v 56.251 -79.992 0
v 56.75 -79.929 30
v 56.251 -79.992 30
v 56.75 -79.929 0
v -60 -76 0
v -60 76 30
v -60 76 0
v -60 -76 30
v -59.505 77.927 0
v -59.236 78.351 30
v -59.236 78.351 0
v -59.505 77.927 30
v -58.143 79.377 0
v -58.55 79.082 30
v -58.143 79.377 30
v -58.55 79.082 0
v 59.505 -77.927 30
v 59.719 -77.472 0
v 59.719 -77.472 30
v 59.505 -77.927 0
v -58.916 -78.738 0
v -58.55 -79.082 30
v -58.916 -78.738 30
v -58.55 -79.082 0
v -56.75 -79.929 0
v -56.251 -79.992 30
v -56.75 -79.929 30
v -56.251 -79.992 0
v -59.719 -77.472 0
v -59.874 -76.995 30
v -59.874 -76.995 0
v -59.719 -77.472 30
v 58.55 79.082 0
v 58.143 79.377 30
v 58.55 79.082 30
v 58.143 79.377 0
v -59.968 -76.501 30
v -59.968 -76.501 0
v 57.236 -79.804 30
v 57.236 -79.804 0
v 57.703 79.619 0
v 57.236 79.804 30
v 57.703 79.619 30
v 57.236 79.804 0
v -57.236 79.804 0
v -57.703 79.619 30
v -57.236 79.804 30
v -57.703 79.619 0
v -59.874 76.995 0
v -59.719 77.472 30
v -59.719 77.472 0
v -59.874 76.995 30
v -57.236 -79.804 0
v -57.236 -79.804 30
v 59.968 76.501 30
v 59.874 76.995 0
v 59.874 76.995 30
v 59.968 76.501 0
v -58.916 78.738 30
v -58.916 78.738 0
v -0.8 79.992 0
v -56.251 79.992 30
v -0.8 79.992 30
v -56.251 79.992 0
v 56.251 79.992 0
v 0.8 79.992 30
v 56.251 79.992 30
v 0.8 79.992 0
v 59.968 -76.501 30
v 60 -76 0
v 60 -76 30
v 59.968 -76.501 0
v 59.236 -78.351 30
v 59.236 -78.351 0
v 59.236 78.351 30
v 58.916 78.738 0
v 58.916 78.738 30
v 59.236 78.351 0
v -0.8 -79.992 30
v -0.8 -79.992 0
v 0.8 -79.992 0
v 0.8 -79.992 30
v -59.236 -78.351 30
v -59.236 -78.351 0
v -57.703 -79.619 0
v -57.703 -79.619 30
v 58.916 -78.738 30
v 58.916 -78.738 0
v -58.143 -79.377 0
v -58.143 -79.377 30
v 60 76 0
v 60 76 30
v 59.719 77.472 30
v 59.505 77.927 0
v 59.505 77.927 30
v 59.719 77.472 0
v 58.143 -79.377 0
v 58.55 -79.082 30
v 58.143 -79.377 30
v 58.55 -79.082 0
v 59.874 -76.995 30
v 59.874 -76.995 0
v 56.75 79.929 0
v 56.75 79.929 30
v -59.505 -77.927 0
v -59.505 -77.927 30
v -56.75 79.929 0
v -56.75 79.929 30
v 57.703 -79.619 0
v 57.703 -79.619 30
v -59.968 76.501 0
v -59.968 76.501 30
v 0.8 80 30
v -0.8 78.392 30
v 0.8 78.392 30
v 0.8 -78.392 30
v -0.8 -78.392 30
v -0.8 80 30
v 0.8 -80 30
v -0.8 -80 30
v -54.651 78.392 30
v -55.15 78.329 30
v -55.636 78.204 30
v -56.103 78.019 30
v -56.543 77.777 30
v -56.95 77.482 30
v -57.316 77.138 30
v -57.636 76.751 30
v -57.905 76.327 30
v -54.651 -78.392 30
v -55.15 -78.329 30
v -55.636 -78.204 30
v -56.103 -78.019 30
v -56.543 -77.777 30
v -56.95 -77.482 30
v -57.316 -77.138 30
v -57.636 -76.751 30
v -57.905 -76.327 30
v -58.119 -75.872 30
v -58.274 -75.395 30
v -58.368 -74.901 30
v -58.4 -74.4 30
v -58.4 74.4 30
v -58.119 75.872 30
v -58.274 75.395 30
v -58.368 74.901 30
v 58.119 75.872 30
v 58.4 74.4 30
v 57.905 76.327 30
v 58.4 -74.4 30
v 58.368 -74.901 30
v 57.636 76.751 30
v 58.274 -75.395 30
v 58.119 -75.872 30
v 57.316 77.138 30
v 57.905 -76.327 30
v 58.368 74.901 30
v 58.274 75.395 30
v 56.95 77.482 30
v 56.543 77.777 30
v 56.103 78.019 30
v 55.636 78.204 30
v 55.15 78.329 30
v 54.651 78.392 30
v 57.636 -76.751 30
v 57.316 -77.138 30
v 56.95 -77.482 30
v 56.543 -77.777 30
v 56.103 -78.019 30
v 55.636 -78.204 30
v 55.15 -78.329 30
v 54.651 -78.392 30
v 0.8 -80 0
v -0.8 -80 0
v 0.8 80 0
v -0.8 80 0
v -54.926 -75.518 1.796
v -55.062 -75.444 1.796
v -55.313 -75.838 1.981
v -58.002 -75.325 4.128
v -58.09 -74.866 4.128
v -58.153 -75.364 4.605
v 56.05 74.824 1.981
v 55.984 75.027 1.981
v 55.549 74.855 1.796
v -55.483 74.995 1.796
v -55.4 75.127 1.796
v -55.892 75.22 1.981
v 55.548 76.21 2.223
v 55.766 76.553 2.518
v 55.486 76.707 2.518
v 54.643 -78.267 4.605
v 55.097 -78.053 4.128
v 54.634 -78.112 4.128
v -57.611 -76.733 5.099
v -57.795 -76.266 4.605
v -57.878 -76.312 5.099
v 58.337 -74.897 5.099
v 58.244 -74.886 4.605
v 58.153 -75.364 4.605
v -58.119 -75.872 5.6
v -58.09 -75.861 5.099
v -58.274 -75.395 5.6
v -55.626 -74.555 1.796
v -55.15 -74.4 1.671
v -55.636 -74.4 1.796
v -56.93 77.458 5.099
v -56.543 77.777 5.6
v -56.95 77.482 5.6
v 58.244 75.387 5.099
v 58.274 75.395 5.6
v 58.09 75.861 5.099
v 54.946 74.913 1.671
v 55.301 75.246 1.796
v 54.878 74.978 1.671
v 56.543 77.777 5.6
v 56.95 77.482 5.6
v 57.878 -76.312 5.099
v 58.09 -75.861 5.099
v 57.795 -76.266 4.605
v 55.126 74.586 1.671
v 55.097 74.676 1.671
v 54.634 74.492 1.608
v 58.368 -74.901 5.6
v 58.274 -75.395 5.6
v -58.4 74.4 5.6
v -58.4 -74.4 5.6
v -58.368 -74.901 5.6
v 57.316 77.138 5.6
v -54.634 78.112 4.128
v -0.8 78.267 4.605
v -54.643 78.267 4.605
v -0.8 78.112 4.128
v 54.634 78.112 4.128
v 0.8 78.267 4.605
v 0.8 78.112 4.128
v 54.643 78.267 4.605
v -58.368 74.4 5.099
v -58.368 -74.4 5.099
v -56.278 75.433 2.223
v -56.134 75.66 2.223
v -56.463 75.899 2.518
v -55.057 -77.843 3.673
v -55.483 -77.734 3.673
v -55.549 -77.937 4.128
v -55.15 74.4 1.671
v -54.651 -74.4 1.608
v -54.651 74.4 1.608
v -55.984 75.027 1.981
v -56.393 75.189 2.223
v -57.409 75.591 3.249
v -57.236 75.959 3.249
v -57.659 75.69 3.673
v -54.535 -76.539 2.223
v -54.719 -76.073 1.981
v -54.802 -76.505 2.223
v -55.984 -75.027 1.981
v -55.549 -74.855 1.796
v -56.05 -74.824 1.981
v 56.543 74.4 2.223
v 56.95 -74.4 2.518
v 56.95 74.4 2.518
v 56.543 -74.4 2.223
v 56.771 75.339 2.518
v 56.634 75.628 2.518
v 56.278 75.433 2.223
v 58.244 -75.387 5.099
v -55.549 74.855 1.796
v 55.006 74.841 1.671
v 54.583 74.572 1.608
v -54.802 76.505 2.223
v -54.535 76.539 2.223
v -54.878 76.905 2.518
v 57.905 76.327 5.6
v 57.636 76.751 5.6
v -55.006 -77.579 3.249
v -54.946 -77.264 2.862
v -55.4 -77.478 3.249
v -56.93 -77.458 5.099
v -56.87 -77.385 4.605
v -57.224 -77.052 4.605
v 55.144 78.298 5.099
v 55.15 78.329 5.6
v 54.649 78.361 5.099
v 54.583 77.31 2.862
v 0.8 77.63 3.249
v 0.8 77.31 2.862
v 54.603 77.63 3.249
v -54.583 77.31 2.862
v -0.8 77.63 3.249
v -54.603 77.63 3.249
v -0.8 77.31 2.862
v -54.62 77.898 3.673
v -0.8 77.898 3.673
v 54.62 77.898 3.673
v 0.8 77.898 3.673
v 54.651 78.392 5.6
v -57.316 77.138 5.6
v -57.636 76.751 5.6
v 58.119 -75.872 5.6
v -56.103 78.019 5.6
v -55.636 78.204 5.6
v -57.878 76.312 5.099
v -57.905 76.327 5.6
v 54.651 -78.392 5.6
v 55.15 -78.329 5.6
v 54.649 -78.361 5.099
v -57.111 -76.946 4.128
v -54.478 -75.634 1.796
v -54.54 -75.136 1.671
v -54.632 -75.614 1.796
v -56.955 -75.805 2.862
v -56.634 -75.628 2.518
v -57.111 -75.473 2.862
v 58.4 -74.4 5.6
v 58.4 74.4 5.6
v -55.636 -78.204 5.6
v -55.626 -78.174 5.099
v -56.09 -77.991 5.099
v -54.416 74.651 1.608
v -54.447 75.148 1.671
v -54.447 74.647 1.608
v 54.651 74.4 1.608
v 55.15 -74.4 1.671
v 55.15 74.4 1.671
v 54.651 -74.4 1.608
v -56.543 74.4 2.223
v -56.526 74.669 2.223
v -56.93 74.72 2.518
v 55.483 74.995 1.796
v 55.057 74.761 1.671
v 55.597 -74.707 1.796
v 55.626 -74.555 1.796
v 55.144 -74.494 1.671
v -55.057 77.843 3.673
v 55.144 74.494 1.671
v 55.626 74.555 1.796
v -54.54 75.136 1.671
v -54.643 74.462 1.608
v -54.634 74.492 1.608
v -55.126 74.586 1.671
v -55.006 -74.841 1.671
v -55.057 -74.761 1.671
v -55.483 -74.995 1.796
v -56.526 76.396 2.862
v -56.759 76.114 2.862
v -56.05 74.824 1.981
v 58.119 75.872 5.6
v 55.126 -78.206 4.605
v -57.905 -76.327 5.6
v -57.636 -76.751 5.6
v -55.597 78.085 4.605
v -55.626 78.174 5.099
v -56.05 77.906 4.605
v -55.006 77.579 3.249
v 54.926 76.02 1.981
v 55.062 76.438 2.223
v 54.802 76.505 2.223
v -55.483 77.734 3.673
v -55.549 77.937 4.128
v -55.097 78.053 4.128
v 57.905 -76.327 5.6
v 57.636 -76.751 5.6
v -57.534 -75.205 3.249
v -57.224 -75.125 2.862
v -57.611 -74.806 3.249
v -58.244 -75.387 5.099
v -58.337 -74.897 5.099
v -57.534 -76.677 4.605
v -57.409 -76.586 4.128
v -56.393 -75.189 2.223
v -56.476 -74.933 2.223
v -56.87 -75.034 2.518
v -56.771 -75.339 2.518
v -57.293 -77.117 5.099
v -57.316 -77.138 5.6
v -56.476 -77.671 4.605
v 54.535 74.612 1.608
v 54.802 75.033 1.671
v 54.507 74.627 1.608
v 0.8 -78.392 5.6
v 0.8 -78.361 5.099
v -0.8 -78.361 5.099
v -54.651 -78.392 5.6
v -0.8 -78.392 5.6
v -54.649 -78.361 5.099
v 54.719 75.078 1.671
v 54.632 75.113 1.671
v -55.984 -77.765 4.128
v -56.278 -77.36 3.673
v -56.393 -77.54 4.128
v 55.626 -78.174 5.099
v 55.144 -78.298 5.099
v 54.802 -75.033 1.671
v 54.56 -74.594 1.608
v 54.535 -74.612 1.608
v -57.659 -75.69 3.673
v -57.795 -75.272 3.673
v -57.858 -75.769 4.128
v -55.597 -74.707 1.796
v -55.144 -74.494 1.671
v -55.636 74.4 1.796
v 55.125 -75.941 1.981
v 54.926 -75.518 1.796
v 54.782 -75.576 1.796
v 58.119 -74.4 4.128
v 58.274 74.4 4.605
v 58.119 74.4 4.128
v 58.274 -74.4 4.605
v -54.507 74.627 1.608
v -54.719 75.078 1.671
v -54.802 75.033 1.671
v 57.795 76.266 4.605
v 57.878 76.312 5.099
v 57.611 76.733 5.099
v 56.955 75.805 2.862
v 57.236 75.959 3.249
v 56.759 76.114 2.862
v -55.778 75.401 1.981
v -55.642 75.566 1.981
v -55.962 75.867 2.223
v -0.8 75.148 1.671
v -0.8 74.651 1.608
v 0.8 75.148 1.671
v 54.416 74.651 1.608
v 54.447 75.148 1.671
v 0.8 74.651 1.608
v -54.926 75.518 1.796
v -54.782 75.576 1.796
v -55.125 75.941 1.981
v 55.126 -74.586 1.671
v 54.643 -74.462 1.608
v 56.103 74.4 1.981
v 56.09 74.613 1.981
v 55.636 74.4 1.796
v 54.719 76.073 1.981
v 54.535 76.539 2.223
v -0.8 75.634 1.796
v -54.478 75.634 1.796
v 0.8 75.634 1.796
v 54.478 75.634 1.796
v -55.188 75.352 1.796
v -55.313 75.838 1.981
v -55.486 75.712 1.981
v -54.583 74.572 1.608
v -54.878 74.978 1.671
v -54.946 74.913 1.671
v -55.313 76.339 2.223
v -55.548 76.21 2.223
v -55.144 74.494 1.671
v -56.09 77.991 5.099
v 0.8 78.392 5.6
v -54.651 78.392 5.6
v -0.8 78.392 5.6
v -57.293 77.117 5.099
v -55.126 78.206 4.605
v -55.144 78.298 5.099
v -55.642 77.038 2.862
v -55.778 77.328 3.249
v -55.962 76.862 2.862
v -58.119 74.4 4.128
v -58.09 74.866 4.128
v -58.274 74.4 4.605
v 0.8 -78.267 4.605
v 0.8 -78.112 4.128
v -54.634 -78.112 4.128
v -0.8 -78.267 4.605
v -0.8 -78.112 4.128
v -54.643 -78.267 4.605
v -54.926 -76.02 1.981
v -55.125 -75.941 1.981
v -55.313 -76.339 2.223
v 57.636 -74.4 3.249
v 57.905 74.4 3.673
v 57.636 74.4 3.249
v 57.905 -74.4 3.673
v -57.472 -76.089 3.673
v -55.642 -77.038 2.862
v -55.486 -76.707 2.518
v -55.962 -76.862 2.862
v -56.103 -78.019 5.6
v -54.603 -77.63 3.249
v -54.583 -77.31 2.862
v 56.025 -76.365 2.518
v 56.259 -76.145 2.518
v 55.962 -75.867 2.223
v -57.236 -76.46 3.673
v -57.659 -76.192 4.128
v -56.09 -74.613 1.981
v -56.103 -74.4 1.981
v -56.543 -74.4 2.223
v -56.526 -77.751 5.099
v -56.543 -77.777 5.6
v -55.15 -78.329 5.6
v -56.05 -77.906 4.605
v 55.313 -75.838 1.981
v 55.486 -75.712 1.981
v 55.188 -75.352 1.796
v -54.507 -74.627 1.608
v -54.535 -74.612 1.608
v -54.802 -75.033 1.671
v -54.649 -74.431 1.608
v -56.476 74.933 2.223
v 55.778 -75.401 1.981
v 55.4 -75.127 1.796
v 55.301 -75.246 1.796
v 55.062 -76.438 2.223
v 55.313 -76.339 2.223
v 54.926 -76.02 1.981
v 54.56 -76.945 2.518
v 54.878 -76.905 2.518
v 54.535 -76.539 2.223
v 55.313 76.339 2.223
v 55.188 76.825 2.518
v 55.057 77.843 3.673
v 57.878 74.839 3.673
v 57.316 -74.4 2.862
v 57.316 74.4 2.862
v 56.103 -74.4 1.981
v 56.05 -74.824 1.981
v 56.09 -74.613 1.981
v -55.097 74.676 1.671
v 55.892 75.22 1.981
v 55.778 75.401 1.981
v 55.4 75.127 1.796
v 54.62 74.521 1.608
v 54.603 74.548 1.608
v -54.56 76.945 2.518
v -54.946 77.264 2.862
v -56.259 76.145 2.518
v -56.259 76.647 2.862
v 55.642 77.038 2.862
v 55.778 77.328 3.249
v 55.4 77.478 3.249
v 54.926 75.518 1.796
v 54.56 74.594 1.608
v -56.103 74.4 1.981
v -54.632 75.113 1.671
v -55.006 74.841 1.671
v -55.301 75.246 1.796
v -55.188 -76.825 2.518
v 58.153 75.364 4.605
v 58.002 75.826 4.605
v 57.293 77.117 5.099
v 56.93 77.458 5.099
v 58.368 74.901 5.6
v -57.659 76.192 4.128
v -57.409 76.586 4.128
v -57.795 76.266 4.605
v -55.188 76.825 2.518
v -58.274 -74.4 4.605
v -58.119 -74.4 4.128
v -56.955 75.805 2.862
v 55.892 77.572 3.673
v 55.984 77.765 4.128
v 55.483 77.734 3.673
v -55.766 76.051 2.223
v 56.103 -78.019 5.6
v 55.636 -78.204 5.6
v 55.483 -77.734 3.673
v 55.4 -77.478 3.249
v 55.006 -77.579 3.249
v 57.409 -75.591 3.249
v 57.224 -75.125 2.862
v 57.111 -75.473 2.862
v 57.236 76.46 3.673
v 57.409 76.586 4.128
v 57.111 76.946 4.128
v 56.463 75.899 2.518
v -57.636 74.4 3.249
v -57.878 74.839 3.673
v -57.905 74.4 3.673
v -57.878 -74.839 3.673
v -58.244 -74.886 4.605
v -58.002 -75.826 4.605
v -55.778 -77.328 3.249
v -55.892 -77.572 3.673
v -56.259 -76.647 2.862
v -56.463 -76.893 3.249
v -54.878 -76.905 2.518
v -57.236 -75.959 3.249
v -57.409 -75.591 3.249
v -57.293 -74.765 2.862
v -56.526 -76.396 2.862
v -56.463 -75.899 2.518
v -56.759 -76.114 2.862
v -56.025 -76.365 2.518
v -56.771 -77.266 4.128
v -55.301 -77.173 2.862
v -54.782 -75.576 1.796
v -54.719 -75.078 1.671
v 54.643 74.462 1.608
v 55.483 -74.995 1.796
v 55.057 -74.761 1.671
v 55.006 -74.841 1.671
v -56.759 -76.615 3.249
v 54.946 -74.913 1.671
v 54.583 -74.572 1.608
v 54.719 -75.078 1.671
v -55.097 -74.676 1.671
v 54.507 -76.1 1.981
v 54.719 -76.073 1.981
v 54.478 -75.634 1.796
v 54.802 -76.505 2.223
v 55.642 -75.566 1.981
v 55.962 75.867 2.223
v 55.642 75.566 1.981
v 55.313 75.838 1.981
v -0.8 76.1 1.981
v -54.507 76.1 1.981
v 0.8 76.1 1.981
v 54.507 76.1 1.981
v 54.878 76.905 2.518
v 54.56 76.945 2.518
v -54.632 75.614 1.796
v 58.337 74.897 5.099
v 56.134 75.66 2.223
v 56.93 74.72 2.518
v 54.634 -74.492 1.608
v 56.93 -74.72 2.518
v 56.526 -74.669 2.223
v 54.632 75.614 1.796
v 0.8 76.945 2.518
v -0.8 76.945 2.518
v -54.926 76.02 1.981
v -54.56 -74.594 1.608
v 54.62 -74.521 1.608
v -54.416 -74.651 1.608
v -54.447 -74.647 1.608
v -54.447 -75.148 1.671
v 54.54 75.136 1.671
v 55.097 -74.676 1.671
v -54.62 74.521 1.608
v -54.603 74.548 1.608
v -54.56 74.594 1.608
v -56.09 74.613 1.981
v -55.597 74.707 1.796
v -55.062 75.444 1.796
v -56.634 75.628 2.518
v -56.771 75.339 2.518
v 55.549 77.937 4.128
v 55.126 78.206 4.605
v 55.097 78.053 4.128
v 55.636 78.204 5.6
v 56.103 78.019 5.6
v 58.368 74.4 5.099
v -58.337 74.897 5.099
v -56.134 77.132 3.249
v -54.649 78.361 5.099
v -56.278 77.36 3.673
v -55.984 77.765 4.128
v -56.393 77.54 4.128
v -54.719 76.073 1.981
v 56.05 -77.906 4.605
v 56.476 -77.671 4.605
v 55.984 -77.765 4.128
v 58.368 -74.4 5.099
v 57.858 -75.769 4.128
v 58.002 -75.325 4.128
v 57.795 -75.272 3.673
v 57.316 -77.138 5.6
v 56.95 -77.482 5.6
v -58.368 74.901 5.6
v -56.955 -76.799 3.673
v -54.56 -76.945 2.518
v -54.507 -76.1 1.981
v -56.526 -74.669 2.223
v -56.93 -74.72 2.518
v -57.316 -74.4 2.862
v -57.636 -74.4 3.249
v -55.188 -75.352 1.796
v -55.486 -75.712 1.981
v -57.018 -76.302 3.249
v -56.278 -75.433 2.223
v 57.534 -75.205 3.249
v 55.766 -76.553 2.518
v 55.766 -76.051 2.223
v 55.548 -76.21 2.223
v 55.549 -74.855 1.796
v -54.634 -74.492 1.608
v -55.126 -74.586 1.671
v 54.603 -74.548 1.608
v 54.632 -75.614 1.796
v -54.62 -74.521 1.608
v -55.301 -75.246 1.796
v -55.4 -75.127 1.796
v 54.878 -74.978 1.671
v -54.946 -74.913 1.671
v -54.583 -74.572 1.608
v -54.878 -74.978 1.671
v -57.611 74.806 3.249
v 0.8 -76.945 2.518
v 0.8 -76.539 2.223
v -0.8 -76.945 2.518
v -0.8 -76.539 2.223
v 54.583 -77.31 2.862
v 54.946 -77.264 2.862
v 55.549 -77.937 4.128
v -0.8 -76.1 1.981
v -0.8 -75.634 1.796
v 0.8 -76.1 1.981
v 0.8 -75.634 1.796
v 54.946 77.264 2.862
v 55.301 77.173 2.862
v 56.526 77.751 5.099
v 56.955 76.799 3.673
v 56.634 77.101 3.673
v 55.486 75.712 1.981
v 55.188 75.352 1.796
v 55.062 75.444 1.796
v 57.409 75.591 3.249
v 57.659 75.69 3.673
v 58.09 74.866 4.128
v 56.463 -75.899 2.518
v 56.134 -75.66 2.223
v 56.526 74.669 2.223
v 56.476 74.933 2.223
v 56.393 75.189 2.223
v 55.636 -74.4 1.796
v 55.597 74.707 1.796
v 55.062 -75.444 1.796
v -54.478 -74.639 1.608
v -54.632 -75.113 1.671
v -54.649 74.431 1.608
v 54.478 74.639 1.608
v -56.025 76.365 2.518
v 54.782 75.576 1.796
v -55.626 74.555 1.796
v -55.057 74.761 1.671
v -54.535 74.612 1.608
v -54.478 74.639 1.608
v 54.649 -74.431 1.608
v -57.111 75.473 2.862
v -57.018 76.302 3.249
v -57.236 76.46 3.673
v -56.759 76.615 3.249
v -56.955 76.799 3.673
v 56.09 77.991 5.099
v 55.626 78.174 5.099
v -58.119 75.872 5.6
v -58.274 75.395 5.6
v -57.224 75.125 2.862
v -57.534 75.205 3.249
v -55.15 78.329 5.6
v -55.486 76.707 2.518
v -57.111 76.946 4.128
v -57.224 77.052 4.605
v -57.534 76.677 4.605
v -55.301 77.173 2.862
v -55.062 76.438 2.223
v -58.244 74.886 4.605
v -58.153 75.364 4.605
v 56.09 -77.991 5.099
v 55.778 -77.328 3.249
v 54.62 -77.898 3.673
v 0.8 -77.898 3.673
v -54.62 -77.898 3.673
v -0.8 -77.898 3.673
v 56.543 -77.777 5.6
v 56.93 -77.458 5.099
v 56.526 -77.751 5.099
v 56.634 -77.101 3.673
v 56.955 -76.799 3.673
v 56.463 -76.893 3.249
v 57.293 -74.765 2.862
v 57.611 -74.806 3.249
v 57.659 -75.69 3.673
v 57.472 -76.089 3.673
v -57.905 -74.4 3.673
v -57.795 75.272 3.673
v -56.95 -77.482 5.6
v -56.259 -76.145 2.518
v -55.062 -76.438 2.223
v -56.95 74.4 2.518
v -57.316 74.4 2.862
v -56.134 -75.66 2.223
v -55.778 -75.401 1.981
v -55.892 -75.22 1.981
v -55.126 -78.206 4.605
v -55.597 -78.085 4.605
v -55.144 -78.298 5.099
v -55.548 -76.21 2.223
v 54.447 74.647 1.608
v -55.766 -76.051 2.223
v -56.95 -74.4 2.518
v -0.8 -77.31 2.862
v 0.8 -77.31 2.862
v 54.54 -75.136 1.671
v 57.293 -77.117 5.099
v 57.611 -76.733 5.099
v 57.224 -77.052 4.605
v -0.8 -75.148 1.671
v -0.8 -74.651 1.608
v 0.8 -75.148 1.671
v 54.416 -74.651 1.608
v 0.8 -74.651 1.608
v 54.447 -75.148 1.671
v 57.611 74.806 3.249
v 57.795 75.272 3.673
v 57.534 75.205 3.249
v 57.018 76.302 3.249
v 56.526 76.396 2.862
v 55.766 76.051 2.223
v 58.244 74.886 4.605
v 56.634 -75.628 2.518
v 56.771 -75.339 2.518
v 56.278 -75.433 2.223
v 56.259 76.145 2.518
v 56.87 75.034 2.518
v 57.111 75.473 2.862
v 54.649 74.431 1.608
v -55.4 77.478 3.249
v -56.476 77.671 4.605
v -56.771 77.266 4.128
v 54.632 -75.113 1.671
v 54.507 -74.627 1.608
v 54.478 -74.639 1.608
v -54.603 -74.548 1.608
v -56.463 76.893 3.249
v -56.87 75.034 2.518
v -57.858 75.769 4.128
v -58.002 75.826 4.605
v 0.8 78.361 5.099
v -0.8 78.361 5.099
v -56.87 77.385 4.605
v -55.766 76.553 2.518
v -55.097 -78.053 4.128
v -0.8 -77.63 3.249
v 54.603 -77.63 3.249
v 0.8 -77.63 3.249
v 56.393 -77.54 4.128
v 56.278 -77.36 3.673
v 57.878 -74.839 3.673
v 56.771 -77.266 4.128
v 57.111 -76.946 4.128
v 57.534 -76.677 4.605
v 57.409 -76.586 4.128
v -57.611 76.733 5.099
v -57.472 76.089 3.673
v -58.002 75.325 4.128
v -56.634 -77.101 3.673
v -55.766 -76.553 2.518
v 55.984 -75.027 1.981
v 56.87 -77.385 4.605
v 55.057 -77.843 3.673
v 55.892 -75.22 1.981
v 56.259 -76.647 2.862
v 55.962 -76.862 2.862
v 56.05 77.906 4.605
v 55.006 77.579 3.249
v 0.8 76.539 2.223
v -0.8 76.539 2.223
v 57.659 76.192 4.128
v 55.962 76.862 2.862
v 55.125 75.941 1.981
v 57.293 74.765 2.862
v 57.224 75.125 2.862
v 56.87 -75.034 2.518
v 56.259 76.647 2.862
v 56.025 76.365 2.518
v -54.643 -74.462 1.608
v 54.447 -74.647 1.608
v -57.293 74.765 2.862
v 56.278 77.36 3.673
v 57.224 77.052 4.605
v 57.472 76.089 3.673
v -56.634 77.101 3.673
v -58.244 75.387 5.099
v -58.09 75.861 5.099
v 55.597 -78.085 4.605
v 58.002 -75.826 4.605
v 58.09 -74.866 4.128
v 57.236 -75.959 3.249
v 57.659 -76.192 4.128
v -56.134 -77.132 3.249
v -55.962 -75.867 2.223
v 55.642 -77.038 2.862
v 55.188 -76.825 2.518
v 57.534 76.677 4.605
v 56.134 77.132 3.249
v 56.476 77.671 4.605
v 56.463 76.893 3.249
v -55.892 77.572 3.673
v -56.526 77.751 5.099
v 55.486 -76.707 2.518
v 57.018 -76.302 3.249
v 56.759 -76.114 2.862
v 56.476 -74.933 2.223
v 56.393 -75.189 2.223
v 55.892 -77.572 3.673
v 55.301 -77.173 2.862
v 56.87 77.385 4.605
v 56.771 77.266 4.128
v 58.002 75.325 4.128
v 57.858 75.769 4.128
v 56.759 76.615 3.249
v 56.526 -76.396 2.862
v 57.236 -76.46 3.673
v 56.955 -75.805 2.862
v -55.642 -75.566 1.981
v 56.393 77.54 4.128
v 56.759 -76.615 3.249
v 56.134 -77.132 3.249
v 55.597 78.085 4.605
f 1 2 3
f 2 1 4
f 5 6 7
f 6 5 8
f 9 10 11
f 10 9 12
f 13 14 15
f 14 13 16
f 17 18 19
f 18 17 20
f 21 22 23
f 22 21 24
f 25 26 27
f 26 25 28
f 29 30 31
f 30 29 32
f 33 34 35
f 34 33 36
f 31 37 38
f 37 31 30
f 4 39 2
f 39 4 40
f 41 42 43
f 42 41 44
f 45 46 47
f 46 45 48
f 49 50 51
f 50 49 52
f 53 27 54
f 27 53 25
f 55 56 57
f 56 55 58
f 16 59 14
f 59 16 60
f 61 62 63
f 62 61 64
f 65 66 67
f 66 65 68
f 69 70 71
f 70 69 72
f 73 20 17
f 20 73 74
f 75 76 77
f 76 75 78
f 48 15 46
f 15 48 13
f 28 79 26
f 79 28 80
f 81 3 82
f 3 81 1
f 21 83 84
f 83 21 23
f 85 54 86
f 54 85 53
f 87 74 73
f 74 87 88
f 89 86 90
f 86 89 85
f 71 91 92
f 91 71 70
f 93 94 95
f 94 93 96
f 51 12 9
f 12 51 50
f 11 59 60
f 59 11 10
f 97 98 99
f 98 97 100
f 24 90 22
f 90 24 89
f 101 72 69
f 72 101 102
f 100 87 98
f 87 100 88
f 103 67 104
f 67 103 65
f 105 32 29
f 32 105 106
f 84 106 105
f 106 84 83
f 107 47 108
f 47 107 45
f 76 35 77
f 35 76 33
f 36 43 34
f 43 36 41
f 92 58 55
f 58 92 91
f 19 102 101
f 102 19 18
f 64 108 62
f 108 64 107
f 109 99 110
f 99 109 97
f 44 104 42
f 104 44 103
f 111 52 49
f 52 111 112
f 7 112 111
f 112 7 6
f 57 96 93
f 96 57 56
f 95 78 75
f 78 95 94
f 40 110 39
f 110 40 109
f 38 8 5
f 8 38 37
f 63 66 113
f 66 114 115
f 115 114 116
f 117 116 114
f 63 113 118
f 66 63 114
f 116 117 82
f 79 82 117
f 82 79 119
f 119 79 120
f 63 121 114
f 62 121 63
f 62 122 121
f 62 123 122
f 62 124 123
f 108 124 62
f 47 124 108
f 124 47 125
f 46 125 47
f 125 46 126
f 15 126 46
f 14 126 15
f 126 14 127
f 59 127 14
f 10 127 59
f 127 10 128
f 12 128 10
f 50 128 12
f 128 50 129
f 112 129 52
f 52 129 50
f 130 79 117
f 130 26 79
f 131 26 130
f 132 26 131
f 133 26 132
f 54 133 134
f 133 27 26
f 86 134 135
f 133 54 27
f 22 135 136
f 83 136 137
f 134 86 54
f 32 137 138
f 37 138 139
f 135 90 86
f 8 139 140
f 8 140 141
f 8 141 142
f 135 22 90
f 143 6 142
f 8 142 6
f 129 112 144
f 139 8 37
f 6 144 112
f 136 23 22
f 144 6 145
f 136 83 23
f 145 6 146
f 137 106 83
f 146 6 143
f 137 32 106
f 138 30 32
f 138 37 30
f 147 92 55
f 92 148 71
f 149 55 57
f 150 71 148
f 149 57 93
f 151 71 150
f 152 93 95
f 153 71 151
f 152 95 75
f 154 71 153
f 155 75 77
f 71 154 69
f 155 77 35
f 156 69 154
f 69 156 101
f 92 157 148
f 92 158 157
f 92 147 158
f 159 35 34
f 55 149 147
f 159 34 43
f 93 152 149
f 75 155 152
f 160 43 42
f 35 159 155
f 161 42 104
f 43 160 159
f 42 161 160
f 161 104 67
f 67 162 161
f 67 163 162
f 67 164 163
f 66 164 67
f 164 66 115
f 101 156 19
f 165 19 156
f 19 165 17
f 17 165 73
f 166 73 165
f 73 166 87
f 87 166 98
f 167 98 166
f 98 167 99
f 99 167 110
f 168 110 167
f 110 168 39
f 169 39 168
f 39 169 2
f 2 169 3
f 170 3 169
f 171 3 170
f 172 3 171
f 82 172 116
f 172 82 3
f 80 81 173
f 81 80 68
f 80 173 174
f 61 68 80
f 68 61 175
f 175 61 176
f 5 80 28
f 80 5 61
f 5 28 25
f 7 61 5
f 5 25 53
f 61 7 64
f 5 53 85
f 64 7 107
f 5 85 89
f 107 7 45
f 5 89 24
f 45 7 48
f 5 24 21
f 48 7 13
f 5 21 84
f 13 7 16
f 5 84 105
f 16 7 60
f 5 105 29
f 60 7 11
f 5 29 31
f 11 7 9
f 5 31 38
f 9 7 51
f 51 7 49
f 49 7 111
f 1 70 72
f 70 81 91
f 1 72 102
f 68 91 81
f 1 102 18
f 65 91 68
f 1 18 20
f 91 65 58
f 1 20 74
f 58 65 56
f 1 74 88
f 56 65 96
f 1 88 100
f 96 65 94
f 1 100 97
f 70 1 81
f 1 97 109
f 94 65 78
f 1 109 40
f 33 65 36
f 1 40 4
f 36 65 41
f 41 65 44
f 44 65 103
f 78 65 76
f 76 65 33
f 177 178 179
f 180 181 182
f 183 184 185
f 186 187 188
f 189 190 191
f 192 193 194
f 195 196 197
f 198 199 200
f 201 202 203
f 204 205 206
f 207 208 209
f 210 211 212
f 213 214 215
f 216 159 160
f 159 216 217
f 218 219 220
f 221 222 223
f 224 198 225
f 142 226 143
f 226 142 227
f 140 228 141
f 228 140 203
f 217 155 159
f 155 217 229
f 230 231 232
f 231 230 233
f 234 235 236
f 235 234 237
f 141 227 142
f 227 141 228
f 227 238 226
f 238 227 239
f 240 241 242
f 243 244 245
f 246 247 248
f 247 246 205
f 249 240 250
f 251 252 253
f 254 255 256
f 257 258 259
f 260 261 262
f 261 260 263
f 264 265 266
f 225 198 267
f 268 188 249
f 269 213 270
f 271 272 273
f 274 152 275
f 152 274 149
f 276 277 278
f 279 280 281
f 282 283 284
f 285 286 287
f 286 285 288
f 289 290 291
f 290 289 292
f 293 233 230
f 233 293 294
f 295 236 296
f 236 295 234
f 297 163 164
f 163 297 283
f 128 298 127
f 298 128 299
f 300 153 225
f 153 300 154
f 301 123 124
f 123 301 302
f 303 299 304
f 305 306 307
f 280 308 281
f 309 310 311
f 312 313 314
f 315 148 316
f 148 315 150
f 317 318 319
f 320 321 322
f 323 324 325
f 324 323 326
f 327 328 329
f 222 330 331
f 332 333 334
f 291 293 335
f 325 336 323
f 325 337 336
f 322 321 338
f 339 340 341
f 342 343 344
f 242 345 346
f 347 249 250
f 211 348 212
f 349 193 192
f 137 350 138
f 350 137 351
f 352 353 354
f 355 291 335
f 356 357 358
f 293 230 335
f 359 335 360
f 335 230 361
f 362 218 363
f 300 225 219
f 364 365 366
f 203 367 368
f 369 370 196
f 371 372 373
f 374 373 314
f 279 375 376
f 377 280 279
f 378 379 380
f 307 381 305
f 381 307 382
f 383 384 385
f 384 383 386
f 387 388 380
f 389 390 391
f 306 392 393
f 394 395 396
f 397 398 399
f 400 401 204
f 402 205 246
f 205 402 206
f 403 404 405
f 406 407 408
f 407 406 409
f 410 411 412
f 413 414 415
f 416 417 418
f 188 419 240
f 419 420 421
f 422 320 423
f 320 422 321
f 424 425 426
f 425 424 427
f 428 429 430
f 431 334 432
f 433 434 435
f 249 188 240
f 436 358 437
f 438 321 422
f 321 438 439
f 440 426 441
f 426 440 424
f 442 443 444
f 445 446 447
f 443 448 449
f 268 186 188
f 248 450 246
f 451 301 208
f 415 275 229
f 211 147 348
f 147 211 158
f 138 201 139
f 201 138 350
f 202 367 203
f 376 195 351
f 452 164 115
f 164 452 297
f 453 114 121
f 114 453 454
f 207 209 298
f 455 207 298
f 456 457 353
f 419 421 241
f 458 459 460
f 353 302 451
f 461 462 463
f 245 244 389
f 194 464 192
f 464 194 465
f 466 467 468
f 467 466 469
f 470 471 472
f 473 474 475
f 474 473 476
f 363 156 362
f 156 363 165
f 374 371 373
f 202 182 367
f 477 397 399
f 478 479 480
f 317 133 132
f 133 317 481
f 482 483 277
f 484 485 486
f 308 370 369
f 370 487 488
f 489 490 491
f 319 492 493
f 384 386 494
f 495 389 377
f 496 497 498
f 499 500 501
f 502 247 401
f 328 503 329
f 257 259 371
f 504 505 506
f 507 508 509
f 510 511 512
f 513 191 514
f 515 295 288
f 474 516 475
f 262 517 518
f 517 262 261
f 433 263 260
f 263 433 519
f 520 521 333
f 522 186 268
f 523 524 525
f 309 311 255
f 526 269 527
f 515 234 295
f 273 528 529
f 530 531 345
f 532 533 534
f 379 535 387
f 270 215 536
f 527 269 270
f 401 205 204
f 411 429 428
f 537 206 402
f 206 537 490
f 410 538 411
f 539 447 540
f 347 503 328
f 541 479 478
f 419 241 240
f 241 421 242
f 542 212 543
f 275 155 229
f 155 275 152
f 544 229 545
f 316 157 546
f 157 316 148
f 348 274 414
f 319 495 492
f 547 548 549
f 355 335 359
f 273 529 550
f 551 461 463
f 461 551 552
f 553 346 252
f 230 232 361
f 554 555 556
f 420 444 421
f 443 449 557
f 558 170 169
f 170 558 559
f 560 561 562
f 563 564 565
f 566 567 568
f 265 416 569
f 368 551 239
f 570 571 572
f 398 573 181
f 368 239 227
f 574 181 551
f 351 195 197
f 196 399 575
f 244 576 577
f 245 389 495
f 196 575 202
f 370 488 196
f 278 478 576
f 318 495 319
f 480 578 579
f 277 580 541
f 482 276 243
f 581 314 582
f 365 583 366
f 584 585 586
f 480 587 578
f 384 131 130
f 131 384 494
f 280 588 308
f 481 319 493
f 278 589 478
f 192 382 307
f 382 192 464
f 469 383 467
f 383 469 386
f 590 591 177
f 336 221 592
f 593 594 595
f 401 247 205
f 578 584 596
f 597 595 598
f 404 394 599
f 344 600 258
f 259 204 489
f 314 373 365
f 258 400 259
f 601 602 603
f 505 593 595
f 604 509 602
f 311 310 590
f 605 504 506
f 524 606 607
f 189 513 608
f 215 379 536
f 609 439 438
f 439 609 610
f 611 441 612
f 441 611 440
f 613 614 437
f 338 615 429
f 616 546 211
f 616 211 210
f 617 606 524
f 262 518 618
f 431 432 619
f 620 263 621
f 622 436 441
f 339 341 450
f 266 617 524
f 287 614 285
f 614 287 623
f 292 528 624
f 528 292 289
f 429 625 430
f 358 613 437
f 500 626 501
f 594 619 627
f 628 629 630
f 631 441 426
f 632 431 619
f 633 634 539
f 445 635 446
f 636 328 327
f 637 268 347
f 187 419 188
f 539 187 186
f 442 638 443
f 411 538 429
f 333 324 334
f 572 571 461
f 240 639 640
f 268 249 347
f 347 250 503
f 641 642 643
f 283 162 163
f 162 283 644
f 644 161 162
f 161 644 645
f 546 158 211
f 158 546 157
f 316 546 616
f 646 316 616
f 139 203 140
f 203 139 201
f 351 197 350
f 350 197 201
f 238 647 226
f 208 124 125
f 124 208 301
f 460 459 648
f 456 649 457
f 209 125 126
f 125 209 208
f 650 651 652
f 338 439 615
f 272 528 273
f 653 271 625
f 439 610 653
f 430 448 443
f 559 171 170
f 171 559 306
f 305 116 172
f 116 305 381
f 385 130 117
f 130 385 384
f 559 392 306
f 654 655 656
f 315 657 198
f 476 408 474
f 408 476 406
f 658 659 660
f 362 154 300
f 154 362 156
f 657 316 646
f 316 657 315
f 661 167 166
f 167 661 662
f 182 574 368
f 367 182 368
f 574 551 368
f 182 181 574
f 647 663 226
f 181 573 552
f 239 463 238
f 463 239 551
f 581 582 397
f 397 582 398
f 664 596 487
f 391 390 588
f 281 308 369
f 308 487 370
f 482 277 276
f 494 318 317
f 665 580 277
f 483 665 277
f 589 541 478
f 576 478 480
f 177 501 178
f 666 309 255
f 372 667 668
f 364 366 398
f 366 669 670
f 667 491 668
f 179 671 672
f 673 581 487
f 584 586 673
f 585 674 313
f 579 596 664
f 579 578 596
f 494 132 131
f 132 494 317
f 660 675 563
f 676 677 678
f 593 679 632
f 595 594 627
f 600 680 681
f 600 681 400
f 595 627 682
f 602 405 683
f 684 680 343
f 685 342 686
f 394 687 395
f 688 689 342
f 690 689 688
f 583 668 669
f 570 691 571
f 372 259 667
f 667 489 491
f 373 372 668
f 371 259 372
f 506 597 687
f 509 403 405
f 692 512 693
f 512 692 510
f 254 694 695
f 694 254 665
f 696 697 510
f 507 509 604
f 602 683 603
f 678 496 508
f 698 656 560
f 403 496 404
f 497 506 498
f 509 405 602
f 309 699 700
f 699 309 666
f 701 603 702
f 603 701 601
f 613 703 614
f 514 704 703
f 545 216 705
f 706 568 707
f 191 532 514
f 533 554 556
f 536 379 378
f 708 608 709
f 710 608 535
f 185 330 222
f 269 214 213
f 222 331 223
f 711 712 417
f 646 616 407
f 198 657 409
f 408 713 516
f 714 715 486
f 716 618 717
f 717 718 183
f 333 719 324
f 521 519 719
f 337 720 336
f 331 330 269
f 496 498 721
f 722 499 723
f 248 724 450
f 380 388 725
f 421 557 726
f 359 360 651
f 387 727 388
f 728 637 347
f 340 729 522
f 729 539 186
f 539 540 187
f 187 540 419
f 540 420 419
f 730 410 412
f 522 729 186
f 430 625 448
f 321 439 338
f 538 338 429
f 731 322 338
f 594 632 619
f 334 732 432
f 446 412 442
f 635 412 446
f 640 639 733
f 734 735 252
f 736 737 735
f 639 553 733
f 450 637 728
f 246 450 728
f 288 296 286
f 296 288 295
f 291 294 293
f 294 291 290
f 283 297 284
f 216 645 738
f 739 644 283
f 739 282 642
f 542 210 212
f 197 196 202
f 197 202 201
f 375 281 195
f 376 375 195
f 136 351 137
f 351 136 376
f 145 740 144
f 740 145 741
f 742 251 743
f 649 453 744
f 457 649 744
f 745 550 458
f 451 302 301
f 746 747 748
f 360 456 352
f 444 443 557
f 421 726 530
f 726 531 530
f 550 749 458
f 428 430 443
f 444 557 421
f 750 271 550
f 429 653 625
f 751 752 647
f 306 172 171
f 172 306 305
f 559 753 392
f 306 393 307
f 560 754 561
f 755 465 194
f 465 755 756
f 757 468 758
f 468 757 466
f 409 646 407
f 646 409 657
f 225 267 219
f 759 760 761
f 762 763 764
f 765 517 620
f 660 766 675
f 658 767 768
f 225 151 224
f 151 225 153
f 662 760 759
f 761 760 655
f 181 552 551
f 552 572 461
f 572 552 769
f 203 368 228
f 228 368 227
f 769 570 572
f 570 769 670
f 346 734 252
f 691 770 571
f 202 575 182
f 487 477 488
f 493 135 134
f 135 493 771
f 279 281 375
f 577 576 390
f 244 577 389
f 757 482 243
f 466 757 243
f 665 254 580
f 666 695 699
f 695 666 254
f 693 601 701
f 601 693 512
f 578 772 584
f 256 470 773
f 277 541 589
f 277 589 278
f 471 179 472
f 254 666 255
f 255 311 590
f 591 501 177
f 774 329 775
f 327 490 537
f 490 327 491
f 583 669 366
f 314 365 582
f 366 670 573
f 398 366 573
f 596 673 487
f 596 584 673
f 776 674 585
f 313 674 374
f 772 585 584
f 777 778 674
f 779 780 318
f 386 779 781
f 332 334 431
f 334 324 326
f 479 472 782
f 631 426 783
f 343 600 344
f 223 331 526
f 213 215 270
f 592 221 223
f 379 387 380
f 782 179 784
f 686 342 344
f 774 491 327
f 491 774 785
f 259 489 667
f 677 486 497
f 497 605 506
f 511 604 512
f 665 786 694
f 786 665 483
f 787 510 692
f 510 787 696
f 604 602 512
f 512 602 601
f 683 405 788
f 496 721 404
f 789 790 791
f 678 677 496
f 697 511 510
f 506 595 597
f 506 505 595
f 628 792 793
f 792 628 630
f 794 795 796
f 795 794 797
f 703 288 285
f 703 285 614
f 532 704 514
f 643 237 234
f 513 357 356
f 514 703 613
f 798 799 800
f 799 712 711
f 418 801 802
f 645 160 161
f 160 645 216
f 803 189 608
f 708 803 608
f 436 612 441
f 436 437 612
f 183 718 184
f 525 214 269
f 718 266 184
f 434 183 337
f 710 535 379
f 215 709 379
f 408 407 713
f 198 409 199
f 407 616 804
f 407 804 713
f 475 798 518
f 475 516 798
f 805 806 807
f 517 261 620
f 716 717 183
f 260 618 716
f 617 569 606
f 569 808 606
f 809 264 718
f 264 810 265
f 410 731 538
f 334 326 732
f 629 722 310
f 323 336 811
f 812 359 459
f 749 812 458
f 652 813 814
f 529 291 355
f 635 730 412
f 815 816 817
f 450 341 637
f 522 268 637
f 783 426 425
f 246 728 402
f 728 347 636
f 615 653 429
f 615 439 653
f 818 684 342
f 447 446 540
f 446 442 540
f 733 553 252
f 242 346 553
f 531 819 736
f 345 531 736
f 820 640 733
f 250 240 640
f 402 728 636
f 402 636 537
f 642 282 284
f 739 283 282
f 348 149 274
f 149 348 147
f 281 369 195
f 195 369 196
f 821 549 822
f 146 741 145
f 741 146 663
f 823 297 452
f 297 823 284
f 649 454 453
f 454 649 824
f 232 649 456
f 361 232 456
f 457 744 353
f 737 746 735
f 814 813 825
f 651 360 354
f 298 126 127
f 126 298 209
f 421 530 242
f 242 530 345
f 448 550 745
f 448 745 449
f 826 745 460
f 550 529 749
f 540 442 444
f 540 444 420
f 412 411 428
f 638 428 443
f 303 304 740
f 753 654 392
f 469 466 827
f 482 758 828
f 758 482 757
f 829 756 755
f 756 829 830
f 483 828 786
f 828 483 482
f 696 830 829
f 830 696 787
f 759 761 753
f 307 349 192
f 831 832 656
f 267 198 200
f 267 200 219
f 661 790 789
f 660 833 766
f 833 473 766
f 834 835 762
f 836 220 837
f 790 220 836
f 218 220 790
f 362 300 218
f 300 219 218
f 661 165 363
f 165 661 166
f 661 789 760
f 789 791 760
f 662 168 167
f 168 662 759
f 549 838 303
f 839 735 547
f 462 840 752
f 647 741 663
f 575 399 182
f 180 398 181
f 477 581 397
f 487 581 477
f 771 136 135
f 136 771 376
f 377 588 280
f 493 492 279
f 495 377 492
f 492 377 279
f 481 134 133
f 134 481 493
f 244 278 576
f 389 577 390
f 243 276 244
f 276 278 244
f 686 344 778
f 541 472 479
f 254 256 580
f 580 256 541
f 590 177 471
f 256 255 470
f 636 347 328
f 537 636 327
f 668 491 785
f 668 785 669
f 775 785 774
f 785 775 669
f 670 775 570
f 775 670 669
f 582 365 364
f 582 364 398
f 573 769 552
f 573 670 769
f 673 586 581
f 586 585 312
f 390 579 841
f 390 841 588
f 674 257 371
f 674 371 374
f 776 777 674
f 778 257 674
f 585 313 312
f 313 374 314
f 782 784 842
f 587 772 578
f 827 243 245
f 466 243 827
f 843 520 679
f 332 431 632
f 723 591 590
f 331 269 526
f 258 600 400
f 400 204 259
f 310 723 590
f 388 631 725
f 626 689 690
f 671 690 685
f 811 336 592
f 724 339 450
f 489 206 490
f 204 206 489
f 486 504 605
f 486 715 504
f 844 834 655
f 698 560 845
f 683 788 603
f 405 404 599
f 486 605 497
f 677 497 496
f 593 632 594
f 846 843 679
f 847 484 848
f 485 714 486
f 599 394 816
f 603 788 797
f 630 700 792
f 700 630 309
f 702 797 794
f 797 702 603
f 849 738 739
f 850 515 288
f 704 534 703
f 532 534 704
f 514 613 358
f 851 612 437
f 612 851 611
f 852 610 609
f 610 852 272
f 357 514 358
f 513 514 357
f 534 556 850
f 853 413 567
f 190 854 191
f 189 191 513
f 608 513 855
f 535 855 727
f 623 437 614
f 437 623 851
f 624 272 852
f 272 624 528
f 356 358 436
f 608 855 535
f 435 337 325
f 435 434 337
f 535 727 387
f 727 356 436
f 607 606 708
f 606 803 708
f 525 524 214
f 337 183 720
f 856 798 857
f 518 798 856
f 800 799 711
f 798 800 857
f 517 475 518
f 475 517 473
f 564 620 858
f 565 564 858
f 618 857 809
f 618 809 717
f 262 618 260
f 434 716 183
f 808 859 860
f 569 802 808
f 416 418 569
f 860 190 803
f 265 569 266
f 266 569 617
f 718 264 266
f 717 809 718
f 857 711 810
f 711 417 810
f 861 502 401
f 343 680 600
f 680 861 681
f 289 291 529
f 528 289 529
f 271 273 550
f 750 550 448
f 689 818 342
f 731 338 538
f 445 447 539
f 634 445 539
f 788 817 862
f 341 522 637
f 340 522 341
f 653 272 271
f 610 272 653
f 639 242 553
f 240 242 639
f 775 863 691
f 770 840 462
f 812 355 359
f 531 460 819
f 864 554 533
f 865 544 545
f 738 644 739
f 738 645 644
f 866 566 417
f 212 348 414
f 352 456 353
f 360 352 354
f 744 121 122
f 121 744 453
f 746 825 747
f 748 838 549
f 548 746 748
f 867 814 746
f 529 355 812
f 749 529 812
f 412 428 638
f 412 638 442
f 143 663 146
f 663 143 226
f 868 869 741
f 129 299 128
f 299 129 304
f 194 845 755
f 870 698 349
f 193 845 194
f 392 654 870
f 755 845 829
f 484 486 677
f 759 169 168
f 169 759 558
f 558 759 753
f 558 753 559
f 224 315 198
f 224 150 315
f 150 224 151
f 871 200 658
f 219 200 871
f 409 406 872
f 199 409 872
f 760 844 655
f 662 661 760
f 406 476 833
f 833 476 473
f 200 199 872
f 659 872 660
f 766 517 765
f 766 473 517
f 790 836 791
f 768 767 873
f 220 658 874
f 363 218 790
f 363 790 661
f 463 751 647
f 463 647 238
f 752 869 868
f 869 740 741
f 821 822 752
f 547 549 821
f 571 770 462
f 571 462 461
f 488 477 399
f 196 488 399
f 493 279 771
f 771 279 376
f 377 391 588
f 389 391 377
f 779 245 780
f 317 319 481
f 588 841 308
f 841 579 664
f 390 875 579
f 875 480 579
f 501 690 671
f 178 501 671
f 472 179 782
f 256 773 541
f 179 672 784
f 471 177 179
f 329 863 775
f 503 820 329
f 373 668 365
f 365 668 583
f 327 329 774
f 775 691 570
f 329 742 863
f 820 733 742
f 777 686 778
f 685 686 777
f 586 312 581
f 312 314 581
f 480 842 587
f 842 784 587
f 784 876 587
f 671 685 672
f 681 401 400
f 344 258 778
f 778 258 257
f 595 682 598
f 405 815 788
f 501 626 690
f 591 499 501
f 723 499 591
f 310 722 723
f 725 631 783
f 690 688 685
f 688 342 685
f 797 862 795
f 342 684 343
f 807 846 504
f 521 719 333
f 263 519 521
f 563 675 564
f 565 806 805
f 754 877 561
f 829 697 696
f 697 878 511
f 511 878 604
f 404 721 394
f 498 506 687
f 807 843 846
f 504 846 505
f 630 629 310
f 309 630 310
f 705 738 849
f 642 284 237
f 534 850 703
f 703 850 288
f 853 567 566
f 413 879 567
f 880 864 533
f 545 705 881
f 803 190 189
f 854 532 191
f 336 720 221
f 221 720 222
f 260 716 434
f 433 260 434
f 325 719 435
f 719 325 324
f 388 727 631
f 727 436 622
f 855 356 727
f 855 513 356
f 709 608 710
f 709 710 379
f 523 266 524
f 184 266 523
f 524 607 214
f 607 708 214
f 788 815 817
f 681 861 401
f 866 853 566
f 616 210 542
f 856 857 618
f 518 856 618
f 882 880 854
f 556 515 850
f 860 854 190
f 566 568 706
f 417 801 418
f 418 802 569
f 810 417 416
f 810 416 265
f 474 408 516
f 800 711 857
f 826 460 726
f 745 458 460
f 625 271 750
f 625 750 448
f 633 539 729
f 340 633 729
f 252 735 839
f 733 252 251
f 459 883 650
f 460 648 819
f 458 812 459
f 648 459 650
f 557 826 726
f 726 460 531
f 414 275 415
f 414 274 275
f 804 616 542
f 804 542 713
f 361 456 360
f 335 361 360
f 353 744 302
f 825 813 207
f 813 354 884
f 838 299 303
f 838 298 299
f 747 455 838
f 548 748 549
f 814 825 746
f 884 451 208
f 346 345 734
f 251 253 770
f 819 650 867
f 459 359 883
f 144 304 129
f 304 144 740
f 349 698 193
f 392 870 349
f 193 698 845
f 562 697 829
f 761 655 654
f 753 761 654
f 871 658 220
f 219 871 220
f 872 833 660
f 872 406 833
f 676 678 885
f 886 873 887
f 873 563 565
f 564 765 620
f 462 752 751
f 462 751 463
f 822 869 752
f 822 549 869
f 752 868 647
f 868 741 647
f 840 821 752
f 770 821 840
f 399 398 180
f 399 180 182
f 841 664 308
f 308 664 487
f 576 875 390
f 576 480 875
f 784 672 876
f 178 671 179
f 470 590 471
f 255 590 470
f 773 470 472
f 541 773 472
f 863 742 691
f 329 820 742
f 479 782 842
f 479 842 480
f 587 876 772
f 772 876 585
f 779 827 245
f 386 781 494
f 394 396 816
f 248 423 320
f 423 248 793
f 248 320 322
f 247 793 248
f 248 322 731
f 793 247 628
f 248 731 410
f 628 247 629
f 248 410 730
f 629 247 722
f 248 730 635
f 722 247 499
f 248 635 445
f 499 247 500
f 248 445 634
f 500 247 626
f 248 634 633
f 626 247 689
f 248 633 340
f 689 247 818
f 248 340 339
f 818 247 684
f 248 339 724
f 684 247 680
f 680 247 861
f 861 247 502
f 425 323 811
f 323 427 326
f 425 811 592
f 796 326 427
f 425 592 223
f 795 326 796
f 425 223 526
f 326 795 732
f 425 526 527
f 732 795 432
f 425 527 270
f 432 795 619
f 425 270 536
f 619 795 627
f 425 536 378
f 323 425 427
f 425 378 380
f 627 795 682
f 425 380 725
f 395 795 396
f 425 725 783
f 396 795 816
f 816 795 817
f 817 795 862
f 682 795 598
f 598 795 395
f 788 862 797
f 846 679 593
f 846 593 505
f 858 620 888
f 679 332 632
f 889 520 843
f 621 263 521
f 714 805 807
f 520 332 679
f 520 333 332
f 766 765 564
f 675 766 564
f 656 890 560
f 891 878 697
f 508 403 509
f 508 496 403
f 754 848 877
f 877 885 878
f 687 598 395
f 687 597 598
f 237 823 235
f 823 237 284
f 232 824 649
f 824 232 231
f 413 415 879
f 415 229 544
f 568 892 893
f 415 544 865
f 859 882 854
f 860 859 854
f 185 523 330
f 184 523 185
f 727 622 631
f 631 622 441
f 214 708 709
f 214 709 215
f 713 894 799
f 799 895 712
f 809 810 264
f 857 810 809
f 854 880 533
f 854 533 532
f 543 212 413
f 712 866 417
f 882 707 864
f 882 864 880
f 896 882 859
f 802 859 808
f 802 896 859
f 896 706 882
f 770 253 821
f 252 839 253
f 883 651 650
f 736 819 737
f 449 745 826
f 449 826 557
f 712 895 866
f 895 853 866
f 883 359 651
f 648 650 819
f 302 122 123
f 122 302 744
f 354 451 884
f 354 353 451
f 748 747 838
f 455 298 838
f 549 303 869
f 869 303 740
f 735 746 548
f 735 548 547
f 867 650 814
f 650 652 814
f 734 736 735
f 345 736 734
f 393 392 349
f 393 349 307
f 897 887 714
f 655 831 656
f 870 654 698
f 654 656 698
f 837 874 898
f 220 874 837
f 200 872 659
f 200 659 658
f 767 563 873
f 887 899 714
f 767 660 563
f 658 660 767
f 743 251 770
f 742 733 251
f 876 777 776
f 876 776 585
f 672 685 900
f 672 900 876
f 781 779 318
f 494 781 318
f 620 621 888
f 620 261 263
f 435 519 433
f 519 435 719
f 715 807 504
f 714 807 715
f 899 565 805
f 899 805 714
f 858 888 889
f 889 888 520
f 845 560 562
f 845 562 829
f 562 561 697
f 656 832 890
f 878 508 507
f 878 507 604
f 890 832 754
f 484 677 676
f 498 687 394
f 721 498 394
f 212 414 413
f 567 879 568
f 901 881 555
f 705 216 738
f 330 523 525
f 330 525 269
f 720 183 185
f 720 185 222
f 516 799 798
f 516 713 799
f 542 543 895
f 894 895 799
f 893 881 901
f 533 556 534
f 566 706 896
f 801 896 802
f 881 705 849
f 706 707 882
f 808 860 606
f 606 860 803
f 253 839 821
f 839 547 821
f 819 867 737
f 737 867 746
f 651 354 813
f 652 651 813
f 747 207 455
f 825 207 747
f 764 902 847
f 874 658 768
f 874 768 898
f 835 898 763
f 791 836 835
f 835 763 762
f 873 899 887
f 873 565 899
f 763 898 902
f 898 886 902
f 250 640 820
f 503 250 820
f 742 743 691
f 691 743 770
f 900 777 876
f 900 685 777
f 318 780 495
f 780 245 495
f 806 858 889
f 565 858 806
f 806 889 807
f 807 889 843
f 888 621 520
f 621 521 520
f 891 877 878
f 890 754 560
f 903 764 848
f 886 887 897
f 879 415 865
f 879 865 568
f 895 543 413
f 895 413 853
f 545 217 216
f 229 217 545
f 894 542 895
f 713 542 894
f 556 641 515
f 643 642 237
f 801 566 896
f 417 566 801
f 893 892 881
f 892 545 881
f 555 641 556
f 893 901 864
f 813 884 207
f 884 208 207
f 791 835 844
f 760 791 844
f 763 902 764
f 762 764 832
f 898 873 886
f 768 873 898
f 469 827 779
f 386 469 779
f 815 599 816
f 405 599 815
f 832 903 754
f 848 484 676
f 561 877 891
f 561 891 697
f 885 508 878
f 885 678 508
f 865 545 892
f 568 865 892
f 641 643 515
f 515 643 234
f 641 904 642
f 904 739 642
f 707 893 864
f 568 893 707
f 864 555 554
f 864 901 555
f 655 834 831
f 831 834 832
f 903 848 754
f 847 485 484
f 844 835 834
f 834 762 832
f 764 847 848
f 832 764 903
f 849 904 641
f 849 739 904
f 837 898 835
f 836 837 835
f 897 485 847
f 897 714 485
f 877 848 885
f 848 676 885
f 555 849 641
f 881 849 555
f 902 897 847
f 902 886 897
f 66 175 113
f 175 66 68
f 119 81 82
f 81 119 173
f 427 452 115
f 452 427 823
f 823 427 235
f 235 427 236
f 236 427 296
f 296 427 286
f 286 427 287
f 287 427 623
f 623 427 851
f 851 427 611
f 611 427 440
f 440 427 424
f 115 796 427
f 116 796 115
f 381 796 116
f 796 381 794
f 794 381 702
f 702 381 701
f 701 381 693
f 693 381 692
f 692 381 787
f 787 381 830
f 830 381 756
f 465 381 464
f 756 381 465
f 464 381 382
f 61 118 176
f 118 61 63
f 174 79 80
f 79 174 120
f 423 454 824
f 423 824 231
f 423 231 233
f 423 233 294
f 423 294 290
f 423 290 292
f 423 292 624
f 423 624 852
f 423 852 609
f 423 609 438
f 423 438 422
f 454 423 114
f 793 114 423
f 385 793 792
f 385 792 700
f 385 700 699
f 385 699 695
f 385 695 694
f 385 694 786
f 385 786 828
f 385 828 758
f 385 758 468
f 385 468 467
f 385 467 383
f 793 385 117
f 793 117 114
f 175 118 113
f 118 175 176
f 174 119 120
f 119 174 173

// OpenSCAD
/**
 * Customizable toolbox
 *
 * Copyright (c) 2024 Pierre Quélin
 * Contact: pierre.quelin.1972@gmail.com
 *
 * This work is licensed under the Creative Commons
 * Attribution-NonCommercial-ShareAlike 3.0 Unported (CC BY-NC-SA 3.0) License.
 * See: https://creativecommons.org
 */

// Outside Box Dimensions
// Box Length
finalBoxLength=120;
// Box Width
finalBoxWidth=160;
// Box Height1
finalBoxHeight=30;

// Wall thickness
wallThickness=1.6; // Good speed
// Chamfer ?
boxRadius =4;

// Number of sections
numSections=2;
// Merge sections (make one side bigger, use 2 or more to merge, 0 or 1 to normal)
mergeSections=1;

// With or without edge (0: without 1:with)
isStackable=0;
// If needed, adjustement between the top and bottom boxes so that they can be stacked.
adjustment=0.8;
// Calculate the box Length (without the edge and the adjustement)
boxLength=finalBoxLength-isStackable*(adjustment+2*wallThickness);
// Box Width
boxWidth=finalBoxWidth-isStackable*(adjustment+2*wallThickness);
// Box Height
boxHeight=finalBoxHeight-isStackable*(wallThickness);

// With or without label (0: without 1:with)
isLabel=0;
// Label width
labelWidth=10;
sectionWidth=(boxLength - (numSections+1)*wallThickness)/numSections;
// 1) Label length = 30% * sectionWidth
// labelLength=0.3*sectionWidth;
// 2) Label length = constant
labelLength=25;

// Fix $fn (number of facets used to generate an arc) value
$fn=50;

// Hidden
dividerCount=mergeSections?numSections-mergeSections:numSections-1;

module cube_c(length, width, height, radius){
   difference() {
      minkowski() {
         cube( [length- 2*radius, width-2*radius, height], center=true );
         cylinder(r=radius, h=2*radius, center=true);
      }
      translate( [0,0,(height+radius)/2] ) cube( [length, width, radius], center=true );
      translate( [0,0,-(height+radius)/2] ) cube( [length, width, radius], center=true );
   }
}

module cube_s(length, width, height, radius){
   minkowski() {
      cube( [length- 2*radius, width-2*radius, height-2*radius], center=true );
      sphere(radius);
   }
}

// Obsolete. Poor finish
module obsolete_label_box(height, width, length){
   alpha=asin(width/height);
   d=sqrt(pow(height,2)-pow(width,2));
   translate([0,0,-length/2])
      linear_extrude(height=length)
         polygon(points=[[0,0],[0,height],[-sin(alpha)*d,cos(alpha)*d]], paths=[[0,1,2]]);
}

module label_box(height, width, length){
   alpha=asin(width/height);
   d=sqrt(pow(height,2)-pow(width,2));
   translate([0,0,-length/2])
      linear_extrude(height=length)
         // Provisioning of 1mm for the thickness of the real label
         polygon(points=[[0,height-width-0.8-1],[0,height-1],[-width,height-1],[-width,height-0.8-1]], paths=[[0,1,2,3]]);
}

module edge(/* TODO parameters */) {
   rotate([180,0,0])
      difference() {
         translate([0,0,0.5*wallThickness])
            cube_c(boxLength+2*wallThickness+adjustment, boxWidth+2*wallThickness+adjustment, 3*wallThickness, boxRadius);
         union() {
            translate([0,0,0.5*wallThickness])
               cube_c(boxLength, boxWidth, wallThickness*3+1, boxRadius);
            translate([0,0,-wallThickness/2])
               cube_c(boxLength+adjustment, boxWidth+adjustment, wallThickness, boxRadius);
         }
         // 45 degrees for edge support
          translate([0, (boxWidth+wallThickness)/2, 2*wallThickness])
            rotate([45,0,0])
               cube([boxLength+2*wallThickness+1, 2*wallThickness, 6*wallThickness], center=true);
         translate([0,-(boxWidth+wallThickness)/2, 2*wallThickness])
            rotate([-45,0,0])
               cube([boxLength+2*wallThickness+1, 2*wallThickness, 6*wallThickness],center=true);
         translate([(boxLength+wallThickness)/2, 0, 2*wallThickness])
            rotate([0,-45,0])
               cube([2*wallThickness, boxWidth+2*wallThickness+1, 6*wallThickness],center=true);
         translate([-(boxLength+wallThickness)/2, 0, 2*wallThickness])
            rotate([0,45,0])
               cube([2*wallThickness, boxWidth+2*wallThickness+1, 6*wallThickness],center=true);
      }
}

module screwBox() {
   // The box
   difference() {
      translate([0,0,boxHeight/2])
         // Outside
         cube_c(boxLength, boxWidth, boxHeight, boxRadius);
      translate([0,0,(boxHeight-wallThickness+boxRadius)/2+wallThickness])
         // Inside
         cube_s(boxLength-wallThickness*2,boxWidth-wallThickness*2,boxHeight-wallThickness+boxRadius, boxRadius);
   }

   // The dividers
   for (id=[0:dividerCount]) {
      if (id!=0){
         origin=(boxLength-wallThickness)/2;
         offset=(boxLength-wallThickness)/numSections;
         translate([origin-id*offset,0,0])
            translate([0,0,boxHeight/2])
               cube([wallThickness,boxWidth,boxHeight],center=true);
      }
   }

   // The labels
   if (isLabel==1){
      for (id=[0:dividerCount]) {
         origin=boxLength/2-wallThickness - sectionWidth/2;
         offset=sectionWidth+wallThickness;
         translate([origin-id*offset,0,0])
            translate([0, (boxWidth/2)-wallThickness, 0 ])
                  rotate([90,0,90])
                     label_box(boxHeight, labelWidth, labelLength);
       }
    }

   // The edge
   if (isStackable==1){
      translate([0,0,boxHeight])
         edge();
   }
}

screwBox();
